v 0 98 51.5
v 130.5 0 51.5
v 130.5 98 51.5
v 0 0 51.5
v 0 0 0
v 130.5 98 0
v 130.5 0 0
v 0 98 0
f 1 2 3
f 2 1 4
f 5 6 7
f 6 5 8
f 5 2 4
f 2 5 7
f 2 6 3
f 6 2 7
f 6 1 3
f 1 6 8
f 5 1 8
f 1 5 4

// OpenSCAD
// Opentrons Flex EV Resin Tips Short Adapter for Third-party Evotips
// loadName: ev_resin_tips_flex_short_adapter
// Auto-generated by labware_to_stl.py from Opentrons V2 labware definition

$fn = 64;

difference() {
    // ── Labware body ──────────────────────────────────────────────
    cube([130.5000, 98.0000, 51.5000]);

    // ── Well cutouts ──────────────────────────────────────────────
}
